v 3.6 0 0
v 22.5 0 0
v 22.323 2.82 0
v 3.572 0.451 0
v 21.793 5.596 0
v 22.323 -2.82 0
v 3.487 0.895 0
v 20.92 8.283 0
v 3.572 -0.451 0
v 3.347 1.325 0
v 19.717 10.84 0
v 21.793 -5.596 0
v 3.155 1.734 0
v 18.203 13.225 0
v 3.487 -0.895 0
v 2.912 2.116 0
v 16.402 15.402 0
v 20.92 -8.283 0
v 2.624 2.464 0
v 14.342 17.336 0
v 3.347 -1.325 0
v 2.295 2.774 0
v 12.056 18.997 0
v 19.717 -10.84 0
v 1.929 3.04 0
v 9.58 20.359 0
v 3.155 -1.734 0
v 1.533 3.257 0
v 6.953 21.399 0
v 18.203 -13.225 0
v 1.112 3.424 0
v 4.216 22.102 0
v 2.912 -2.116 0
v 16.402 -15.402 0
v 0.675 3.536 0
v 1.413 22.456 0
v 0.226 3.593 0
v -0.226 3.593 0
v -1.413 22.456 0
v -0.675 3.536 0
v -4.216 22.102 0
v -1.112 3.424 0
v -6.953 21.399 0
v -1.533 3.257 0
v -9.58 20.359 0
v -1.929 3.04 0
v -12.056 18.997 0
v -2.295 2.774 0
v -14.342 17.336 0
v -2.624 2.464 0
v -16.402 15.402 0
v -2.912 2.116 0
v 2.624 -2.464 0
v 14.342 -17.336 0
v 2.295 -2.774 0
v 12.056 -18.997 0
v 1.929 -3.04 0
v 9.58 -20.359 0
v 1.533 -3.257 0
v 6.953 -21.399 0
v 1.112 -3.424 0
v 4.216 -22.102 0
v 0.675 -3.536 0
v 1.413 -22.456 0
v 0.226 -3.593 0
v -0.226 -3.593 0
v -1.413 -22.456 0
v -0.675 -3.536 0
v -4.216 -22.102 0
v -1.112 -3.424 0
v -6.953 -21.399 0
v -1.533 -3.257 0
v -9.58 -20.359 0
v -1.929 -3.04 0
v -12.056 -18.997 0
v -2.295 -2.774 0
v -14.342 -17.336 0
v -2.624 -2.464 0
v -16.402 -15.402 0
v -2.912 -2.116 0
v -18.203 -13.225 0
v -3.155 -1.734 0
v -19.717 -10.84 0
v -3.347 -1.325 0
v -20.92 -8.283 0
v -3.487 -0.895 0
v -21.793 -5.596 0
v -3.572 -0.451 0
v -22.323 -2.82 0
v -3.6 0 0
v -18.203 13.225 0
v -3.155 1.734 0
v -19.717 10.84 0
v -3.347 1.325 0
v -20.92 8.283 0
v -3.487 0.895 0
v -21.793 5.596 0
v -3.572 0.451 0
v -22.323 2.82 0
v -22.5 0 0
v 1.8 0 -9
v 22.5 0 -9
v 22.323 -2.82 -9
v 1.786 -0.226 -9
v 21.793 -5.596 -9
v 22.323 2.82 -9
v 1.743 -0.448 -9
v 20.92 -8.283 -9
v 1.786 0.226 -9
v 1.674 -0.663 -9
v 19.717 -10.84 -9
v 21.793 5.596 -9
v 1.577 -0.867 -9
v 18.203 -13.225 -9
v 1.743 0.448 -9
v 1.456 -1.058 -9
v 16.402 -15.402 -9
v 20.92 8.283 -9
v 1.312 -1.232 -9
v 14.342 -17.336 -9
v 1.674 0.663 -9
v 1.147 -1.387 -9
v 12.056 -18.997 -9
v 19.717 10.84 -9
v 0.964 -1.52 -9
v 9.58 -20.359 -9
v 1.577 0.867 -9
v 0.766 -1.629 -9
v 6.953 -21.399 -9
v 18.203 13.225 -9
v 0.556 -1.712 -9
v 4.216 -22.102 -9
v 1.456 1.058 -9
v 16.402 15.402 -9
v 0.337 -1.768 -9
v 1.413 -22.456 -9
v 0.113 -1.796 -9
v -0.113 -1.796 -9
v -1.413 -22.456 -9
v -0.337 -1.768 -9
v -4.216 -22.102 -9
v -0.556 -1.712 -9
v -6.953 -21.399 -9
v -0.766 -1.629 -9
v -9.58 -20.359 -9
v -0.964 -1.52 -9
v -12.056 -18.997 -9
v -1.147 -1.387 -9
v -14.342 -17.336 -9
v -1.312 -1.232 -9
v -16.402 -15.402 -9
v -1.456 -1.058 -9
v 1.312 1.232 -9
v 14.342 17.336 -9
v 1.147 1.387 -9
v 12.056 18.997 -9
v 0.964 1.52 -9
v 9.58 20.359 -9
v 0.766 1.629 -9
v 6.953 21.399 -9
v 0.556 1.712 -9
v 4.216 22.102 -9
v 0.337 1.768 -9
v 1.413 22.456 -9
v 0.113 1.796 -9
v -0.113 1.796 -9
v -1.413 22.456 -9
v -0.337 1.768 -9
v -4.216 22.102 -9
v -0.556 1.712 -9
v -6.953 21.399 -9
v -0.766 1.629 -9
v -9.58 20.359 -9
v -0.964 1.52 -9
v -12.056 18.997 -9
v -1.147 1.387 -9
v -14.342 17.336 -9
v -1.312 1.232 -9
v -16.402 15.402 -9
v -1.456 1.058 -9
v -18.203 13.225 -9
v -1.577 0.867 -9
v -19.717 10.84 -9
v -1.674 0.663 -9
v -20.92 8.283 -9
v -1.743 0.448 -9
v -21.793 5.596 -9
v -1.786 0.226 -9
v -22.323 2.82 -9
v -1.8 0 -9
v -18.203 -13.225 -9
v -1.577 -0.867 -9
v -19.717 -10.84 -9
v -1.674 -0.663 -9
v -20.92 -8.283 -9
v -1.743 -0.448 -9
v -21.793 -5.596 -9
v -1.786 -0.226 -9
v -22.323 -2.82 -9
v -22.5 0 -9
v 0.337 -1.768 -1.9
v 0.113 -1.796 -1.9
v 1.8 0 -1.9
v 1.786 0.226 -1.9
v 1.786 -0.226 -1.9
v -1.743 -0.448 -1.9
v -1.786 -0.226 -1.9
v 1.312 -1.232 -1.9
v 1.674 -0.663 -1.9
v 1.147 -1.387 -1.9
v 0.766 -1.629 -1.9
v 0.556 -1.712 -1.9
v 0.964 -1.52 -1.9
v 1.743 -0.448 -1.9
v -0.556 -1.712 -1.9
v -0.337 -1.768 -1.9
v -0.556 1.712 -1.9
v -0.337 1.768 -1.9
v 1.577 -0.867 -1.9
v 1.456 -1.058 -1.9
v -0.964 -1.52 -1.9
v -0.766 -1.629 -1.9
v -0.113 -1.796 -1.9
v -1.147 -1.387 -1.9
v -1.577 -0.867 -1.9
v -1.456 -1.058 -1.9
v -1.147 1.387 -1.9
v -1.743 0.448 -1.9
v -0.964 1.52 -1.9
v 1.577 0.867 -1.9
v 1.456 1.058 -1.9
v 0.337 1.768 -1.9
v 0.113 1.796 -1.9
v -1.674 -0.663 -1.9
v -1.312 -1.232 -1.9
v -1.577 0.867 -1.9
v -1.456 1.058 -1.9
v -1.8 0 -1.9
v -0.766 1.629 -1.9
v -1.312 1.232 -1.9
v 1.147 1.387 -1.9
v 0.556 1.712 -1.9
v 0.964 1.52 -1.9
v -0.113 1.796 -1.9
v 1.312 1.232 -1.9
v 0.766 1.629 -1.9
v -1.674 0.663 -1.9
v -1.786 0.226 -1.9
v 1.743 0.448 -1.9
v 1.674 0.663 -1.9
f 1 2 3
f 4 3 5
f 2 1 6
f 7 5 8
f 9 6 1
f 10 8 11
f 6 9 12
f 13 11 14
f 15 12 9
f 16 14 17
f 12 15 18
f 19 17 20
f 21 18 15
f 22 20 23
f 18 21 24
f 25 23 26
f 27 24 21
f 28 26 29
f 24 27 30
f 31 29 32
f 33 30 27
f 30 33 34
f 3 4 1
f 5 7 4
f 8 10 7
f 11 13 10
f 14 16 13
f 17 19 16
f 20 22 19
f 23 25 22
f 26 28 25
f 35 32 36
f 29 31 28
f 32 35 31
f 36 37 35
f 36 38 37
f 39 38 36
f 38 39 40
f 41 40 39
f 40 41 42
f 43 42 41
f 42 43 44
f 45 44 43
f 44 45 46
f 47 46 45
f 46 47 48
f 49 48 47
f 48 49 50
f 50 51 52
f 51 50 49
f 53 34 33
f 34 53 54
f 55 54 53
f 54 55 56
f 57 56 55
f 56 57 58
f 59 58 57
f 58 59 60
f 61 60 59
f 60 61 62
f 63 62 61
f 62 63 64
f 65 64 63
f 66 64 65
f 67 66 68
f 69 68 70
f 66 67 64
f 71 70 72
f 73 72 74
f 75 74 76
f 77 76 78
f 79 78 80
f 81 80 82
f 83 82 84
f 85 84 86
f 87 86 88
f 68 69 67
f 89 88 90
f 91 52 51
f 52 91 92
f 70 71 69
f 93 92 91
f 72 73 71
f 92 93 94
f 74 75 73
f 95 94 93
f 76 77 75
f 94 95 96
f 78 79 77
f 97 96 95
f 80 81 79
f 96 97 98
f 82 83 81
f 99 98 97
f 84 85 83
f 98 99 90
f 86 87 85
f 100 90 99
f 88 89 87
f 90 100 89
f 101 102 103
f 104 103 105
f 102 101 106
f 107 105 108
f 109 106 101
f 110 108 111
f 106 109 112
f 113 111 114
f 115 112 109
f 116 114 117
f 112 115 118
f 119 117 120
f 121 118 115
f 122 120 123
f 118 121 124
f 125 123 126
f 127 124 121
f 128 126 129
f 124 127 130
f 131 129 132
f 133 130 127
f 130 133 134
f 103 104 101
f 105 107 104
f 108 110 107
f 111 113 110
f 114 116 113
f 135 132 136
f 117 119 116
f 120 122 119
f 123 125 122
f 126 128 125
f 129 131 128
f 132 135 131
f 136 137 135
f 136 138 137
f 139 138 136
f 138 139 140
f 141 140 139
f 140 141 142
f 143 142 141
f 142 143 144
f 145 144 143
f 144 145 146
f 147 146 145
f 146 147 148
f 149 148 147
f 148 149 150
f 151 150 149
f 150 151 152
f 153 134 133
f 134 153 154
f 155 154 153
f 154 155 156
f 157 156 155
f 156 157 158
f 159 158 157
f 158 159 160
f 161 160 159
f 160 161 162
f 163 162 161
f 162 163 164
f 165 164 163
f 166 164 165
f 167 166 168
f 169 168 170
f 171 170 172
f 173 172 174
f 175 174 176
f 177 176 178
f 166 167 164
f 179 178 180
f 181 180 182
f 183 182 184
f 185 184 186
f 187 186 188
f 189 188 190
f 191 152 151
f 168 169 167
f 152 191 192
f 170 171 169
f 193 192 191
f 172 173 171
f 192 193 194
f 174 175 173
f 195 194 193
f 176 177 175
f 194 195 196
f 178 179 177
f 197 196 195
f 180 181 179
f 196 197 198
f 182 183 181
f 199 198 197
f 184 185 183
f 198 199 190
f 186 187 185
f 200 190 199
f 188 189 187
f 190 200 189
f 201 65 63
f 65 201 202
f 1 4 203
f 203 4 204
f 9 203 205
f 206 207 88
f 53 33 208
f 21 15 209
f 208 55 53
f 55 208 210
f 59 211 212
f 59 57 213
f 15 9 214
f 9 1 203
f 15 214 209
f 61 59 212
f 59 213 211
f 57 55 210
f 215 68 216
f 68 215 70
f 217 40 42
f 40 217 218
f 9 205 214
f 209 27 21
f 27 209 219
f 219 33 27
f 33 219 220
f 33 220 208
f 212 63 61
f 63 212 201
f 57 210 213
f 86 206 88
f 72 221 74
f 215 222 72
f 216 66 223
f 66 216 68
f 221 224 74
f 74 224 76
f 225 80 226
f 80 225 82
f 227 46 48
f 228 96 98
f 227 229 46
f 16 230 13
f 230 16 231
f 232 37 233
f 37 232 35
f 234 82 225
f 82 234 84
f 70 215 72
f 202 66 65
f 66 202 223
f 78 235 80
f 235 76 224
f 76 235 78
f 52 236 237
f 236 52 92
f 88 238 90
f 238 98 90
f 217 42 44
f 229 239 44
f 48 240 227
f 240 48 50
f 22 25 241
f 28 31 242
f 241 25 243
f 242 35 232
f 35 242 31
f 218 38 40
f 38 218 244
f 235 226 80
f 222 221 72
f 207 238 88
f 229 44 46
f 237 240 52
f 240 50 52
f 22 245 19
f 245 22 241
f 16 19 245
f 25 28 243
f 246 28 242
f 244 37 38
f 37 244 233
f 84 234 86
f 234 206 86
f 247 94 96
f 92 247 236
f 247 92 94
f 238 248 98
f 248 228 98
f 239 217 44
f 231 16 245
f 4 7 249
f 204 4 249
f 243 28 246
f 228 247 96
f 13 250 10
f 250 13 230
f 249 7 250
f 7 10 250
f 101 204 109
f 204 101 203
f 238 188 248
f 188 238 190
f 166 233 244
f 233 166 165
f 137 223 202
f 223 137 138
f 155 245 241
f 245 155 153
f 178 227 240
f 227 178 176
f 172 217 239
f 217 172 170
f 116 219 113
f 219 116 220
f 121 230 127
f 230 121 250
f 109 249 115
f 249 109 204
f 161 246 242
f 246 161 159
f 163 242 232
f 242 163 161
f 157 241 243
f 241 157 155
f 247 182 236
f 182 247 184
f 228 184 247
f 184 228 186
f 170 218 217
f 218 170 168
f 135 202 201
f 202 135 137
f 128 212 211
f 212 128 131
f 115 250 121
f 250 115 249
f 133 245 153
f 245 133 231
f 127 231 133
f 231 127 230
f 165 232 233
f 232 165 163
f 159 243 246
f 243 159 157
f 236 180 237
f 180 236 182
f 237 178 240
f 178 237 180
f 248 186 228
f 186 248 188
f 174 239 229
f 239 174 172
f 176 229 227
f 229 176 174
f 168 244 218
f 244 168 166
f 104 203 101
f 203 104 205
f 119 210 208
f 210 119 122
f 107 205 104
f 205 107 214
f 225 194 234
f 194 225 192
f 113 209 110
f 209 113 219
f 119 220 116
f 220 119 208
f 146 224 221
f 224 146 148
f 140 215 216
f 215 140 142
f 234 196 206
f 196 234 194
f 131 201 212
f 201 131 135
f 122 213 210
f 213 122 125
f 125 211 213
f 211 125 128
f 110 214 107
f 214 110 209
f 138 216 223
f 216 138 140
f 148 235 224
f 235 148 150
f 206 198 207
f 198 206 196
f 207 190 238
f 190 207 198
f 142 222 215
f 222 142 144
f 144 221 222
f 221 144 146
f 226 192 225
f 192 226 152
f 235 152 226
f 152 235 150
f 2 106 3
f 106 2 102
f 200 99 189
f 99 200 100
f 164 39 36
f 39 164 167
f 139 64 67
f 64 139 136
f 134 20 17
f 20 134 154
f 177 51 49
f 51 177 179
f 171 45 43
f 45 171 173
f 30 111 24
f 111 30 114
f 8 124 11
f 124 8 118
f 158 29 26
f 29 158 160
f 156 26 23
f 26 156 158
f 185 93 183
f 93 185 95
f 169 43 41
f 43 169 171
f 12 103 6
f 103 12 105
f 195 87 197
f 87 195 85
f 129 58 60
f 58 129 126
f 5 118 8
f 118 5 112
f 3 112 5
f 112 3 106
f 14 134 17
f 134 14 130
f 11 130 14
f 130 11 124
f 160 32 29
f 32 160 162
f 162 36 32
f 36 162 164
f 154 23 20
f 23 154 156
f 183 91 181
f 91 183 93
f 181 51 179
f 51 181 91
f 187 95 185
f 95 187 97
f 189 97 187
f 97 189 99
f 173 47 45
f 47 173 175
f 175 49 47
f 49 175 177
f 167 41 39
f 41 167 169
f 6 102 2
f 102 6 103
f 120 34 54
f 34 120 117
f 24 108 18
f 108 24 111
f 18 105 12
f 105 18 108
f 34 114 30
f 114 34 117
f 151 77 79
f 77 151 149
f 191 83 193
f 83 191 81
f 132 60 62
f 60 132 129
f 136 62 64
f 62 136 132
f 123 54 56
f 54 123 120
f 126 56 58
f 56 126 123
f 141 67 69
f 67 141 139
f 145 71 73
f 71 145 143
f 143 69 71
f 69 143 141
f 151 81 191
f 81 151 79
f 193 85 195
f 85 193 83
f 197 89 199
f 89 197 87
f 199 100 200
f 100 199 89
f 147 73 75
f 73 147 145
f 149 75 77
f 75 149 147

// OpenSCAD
$fn = 50;


difference() {
	union() {
		translate(v = [0, 0, -9.0000000000]) {
			cylinder(h = 9, r = 22.5000000000);
		}
	}
	union() {
		translate(v = [0, 0, 0]) {
			rotate(a = [0, 0, 0]) {
				difference() {
					union() {
						#translate(v = [0, 0, -9.0000000000]) {
							cylinder(h = 9, r = 1.5000000000);
						}
						#translate(v = [0, 0, -1.9000000000]) {
							cylinder(h = 1.9000000000, r1 = 1.8000000000, r2 = 3.6000000000);
						}
						#translate(v = [0, 0, -9.0000000000]) {
							cylinder(h = 9, r = 1.8000000000);
						}
						#translate(v = [0, 0, -9.0000000000]) {
							cylinder(h = 9, r = 1.5000000000);
						}
					}
					union();
				}
			}
		}
	}
}
